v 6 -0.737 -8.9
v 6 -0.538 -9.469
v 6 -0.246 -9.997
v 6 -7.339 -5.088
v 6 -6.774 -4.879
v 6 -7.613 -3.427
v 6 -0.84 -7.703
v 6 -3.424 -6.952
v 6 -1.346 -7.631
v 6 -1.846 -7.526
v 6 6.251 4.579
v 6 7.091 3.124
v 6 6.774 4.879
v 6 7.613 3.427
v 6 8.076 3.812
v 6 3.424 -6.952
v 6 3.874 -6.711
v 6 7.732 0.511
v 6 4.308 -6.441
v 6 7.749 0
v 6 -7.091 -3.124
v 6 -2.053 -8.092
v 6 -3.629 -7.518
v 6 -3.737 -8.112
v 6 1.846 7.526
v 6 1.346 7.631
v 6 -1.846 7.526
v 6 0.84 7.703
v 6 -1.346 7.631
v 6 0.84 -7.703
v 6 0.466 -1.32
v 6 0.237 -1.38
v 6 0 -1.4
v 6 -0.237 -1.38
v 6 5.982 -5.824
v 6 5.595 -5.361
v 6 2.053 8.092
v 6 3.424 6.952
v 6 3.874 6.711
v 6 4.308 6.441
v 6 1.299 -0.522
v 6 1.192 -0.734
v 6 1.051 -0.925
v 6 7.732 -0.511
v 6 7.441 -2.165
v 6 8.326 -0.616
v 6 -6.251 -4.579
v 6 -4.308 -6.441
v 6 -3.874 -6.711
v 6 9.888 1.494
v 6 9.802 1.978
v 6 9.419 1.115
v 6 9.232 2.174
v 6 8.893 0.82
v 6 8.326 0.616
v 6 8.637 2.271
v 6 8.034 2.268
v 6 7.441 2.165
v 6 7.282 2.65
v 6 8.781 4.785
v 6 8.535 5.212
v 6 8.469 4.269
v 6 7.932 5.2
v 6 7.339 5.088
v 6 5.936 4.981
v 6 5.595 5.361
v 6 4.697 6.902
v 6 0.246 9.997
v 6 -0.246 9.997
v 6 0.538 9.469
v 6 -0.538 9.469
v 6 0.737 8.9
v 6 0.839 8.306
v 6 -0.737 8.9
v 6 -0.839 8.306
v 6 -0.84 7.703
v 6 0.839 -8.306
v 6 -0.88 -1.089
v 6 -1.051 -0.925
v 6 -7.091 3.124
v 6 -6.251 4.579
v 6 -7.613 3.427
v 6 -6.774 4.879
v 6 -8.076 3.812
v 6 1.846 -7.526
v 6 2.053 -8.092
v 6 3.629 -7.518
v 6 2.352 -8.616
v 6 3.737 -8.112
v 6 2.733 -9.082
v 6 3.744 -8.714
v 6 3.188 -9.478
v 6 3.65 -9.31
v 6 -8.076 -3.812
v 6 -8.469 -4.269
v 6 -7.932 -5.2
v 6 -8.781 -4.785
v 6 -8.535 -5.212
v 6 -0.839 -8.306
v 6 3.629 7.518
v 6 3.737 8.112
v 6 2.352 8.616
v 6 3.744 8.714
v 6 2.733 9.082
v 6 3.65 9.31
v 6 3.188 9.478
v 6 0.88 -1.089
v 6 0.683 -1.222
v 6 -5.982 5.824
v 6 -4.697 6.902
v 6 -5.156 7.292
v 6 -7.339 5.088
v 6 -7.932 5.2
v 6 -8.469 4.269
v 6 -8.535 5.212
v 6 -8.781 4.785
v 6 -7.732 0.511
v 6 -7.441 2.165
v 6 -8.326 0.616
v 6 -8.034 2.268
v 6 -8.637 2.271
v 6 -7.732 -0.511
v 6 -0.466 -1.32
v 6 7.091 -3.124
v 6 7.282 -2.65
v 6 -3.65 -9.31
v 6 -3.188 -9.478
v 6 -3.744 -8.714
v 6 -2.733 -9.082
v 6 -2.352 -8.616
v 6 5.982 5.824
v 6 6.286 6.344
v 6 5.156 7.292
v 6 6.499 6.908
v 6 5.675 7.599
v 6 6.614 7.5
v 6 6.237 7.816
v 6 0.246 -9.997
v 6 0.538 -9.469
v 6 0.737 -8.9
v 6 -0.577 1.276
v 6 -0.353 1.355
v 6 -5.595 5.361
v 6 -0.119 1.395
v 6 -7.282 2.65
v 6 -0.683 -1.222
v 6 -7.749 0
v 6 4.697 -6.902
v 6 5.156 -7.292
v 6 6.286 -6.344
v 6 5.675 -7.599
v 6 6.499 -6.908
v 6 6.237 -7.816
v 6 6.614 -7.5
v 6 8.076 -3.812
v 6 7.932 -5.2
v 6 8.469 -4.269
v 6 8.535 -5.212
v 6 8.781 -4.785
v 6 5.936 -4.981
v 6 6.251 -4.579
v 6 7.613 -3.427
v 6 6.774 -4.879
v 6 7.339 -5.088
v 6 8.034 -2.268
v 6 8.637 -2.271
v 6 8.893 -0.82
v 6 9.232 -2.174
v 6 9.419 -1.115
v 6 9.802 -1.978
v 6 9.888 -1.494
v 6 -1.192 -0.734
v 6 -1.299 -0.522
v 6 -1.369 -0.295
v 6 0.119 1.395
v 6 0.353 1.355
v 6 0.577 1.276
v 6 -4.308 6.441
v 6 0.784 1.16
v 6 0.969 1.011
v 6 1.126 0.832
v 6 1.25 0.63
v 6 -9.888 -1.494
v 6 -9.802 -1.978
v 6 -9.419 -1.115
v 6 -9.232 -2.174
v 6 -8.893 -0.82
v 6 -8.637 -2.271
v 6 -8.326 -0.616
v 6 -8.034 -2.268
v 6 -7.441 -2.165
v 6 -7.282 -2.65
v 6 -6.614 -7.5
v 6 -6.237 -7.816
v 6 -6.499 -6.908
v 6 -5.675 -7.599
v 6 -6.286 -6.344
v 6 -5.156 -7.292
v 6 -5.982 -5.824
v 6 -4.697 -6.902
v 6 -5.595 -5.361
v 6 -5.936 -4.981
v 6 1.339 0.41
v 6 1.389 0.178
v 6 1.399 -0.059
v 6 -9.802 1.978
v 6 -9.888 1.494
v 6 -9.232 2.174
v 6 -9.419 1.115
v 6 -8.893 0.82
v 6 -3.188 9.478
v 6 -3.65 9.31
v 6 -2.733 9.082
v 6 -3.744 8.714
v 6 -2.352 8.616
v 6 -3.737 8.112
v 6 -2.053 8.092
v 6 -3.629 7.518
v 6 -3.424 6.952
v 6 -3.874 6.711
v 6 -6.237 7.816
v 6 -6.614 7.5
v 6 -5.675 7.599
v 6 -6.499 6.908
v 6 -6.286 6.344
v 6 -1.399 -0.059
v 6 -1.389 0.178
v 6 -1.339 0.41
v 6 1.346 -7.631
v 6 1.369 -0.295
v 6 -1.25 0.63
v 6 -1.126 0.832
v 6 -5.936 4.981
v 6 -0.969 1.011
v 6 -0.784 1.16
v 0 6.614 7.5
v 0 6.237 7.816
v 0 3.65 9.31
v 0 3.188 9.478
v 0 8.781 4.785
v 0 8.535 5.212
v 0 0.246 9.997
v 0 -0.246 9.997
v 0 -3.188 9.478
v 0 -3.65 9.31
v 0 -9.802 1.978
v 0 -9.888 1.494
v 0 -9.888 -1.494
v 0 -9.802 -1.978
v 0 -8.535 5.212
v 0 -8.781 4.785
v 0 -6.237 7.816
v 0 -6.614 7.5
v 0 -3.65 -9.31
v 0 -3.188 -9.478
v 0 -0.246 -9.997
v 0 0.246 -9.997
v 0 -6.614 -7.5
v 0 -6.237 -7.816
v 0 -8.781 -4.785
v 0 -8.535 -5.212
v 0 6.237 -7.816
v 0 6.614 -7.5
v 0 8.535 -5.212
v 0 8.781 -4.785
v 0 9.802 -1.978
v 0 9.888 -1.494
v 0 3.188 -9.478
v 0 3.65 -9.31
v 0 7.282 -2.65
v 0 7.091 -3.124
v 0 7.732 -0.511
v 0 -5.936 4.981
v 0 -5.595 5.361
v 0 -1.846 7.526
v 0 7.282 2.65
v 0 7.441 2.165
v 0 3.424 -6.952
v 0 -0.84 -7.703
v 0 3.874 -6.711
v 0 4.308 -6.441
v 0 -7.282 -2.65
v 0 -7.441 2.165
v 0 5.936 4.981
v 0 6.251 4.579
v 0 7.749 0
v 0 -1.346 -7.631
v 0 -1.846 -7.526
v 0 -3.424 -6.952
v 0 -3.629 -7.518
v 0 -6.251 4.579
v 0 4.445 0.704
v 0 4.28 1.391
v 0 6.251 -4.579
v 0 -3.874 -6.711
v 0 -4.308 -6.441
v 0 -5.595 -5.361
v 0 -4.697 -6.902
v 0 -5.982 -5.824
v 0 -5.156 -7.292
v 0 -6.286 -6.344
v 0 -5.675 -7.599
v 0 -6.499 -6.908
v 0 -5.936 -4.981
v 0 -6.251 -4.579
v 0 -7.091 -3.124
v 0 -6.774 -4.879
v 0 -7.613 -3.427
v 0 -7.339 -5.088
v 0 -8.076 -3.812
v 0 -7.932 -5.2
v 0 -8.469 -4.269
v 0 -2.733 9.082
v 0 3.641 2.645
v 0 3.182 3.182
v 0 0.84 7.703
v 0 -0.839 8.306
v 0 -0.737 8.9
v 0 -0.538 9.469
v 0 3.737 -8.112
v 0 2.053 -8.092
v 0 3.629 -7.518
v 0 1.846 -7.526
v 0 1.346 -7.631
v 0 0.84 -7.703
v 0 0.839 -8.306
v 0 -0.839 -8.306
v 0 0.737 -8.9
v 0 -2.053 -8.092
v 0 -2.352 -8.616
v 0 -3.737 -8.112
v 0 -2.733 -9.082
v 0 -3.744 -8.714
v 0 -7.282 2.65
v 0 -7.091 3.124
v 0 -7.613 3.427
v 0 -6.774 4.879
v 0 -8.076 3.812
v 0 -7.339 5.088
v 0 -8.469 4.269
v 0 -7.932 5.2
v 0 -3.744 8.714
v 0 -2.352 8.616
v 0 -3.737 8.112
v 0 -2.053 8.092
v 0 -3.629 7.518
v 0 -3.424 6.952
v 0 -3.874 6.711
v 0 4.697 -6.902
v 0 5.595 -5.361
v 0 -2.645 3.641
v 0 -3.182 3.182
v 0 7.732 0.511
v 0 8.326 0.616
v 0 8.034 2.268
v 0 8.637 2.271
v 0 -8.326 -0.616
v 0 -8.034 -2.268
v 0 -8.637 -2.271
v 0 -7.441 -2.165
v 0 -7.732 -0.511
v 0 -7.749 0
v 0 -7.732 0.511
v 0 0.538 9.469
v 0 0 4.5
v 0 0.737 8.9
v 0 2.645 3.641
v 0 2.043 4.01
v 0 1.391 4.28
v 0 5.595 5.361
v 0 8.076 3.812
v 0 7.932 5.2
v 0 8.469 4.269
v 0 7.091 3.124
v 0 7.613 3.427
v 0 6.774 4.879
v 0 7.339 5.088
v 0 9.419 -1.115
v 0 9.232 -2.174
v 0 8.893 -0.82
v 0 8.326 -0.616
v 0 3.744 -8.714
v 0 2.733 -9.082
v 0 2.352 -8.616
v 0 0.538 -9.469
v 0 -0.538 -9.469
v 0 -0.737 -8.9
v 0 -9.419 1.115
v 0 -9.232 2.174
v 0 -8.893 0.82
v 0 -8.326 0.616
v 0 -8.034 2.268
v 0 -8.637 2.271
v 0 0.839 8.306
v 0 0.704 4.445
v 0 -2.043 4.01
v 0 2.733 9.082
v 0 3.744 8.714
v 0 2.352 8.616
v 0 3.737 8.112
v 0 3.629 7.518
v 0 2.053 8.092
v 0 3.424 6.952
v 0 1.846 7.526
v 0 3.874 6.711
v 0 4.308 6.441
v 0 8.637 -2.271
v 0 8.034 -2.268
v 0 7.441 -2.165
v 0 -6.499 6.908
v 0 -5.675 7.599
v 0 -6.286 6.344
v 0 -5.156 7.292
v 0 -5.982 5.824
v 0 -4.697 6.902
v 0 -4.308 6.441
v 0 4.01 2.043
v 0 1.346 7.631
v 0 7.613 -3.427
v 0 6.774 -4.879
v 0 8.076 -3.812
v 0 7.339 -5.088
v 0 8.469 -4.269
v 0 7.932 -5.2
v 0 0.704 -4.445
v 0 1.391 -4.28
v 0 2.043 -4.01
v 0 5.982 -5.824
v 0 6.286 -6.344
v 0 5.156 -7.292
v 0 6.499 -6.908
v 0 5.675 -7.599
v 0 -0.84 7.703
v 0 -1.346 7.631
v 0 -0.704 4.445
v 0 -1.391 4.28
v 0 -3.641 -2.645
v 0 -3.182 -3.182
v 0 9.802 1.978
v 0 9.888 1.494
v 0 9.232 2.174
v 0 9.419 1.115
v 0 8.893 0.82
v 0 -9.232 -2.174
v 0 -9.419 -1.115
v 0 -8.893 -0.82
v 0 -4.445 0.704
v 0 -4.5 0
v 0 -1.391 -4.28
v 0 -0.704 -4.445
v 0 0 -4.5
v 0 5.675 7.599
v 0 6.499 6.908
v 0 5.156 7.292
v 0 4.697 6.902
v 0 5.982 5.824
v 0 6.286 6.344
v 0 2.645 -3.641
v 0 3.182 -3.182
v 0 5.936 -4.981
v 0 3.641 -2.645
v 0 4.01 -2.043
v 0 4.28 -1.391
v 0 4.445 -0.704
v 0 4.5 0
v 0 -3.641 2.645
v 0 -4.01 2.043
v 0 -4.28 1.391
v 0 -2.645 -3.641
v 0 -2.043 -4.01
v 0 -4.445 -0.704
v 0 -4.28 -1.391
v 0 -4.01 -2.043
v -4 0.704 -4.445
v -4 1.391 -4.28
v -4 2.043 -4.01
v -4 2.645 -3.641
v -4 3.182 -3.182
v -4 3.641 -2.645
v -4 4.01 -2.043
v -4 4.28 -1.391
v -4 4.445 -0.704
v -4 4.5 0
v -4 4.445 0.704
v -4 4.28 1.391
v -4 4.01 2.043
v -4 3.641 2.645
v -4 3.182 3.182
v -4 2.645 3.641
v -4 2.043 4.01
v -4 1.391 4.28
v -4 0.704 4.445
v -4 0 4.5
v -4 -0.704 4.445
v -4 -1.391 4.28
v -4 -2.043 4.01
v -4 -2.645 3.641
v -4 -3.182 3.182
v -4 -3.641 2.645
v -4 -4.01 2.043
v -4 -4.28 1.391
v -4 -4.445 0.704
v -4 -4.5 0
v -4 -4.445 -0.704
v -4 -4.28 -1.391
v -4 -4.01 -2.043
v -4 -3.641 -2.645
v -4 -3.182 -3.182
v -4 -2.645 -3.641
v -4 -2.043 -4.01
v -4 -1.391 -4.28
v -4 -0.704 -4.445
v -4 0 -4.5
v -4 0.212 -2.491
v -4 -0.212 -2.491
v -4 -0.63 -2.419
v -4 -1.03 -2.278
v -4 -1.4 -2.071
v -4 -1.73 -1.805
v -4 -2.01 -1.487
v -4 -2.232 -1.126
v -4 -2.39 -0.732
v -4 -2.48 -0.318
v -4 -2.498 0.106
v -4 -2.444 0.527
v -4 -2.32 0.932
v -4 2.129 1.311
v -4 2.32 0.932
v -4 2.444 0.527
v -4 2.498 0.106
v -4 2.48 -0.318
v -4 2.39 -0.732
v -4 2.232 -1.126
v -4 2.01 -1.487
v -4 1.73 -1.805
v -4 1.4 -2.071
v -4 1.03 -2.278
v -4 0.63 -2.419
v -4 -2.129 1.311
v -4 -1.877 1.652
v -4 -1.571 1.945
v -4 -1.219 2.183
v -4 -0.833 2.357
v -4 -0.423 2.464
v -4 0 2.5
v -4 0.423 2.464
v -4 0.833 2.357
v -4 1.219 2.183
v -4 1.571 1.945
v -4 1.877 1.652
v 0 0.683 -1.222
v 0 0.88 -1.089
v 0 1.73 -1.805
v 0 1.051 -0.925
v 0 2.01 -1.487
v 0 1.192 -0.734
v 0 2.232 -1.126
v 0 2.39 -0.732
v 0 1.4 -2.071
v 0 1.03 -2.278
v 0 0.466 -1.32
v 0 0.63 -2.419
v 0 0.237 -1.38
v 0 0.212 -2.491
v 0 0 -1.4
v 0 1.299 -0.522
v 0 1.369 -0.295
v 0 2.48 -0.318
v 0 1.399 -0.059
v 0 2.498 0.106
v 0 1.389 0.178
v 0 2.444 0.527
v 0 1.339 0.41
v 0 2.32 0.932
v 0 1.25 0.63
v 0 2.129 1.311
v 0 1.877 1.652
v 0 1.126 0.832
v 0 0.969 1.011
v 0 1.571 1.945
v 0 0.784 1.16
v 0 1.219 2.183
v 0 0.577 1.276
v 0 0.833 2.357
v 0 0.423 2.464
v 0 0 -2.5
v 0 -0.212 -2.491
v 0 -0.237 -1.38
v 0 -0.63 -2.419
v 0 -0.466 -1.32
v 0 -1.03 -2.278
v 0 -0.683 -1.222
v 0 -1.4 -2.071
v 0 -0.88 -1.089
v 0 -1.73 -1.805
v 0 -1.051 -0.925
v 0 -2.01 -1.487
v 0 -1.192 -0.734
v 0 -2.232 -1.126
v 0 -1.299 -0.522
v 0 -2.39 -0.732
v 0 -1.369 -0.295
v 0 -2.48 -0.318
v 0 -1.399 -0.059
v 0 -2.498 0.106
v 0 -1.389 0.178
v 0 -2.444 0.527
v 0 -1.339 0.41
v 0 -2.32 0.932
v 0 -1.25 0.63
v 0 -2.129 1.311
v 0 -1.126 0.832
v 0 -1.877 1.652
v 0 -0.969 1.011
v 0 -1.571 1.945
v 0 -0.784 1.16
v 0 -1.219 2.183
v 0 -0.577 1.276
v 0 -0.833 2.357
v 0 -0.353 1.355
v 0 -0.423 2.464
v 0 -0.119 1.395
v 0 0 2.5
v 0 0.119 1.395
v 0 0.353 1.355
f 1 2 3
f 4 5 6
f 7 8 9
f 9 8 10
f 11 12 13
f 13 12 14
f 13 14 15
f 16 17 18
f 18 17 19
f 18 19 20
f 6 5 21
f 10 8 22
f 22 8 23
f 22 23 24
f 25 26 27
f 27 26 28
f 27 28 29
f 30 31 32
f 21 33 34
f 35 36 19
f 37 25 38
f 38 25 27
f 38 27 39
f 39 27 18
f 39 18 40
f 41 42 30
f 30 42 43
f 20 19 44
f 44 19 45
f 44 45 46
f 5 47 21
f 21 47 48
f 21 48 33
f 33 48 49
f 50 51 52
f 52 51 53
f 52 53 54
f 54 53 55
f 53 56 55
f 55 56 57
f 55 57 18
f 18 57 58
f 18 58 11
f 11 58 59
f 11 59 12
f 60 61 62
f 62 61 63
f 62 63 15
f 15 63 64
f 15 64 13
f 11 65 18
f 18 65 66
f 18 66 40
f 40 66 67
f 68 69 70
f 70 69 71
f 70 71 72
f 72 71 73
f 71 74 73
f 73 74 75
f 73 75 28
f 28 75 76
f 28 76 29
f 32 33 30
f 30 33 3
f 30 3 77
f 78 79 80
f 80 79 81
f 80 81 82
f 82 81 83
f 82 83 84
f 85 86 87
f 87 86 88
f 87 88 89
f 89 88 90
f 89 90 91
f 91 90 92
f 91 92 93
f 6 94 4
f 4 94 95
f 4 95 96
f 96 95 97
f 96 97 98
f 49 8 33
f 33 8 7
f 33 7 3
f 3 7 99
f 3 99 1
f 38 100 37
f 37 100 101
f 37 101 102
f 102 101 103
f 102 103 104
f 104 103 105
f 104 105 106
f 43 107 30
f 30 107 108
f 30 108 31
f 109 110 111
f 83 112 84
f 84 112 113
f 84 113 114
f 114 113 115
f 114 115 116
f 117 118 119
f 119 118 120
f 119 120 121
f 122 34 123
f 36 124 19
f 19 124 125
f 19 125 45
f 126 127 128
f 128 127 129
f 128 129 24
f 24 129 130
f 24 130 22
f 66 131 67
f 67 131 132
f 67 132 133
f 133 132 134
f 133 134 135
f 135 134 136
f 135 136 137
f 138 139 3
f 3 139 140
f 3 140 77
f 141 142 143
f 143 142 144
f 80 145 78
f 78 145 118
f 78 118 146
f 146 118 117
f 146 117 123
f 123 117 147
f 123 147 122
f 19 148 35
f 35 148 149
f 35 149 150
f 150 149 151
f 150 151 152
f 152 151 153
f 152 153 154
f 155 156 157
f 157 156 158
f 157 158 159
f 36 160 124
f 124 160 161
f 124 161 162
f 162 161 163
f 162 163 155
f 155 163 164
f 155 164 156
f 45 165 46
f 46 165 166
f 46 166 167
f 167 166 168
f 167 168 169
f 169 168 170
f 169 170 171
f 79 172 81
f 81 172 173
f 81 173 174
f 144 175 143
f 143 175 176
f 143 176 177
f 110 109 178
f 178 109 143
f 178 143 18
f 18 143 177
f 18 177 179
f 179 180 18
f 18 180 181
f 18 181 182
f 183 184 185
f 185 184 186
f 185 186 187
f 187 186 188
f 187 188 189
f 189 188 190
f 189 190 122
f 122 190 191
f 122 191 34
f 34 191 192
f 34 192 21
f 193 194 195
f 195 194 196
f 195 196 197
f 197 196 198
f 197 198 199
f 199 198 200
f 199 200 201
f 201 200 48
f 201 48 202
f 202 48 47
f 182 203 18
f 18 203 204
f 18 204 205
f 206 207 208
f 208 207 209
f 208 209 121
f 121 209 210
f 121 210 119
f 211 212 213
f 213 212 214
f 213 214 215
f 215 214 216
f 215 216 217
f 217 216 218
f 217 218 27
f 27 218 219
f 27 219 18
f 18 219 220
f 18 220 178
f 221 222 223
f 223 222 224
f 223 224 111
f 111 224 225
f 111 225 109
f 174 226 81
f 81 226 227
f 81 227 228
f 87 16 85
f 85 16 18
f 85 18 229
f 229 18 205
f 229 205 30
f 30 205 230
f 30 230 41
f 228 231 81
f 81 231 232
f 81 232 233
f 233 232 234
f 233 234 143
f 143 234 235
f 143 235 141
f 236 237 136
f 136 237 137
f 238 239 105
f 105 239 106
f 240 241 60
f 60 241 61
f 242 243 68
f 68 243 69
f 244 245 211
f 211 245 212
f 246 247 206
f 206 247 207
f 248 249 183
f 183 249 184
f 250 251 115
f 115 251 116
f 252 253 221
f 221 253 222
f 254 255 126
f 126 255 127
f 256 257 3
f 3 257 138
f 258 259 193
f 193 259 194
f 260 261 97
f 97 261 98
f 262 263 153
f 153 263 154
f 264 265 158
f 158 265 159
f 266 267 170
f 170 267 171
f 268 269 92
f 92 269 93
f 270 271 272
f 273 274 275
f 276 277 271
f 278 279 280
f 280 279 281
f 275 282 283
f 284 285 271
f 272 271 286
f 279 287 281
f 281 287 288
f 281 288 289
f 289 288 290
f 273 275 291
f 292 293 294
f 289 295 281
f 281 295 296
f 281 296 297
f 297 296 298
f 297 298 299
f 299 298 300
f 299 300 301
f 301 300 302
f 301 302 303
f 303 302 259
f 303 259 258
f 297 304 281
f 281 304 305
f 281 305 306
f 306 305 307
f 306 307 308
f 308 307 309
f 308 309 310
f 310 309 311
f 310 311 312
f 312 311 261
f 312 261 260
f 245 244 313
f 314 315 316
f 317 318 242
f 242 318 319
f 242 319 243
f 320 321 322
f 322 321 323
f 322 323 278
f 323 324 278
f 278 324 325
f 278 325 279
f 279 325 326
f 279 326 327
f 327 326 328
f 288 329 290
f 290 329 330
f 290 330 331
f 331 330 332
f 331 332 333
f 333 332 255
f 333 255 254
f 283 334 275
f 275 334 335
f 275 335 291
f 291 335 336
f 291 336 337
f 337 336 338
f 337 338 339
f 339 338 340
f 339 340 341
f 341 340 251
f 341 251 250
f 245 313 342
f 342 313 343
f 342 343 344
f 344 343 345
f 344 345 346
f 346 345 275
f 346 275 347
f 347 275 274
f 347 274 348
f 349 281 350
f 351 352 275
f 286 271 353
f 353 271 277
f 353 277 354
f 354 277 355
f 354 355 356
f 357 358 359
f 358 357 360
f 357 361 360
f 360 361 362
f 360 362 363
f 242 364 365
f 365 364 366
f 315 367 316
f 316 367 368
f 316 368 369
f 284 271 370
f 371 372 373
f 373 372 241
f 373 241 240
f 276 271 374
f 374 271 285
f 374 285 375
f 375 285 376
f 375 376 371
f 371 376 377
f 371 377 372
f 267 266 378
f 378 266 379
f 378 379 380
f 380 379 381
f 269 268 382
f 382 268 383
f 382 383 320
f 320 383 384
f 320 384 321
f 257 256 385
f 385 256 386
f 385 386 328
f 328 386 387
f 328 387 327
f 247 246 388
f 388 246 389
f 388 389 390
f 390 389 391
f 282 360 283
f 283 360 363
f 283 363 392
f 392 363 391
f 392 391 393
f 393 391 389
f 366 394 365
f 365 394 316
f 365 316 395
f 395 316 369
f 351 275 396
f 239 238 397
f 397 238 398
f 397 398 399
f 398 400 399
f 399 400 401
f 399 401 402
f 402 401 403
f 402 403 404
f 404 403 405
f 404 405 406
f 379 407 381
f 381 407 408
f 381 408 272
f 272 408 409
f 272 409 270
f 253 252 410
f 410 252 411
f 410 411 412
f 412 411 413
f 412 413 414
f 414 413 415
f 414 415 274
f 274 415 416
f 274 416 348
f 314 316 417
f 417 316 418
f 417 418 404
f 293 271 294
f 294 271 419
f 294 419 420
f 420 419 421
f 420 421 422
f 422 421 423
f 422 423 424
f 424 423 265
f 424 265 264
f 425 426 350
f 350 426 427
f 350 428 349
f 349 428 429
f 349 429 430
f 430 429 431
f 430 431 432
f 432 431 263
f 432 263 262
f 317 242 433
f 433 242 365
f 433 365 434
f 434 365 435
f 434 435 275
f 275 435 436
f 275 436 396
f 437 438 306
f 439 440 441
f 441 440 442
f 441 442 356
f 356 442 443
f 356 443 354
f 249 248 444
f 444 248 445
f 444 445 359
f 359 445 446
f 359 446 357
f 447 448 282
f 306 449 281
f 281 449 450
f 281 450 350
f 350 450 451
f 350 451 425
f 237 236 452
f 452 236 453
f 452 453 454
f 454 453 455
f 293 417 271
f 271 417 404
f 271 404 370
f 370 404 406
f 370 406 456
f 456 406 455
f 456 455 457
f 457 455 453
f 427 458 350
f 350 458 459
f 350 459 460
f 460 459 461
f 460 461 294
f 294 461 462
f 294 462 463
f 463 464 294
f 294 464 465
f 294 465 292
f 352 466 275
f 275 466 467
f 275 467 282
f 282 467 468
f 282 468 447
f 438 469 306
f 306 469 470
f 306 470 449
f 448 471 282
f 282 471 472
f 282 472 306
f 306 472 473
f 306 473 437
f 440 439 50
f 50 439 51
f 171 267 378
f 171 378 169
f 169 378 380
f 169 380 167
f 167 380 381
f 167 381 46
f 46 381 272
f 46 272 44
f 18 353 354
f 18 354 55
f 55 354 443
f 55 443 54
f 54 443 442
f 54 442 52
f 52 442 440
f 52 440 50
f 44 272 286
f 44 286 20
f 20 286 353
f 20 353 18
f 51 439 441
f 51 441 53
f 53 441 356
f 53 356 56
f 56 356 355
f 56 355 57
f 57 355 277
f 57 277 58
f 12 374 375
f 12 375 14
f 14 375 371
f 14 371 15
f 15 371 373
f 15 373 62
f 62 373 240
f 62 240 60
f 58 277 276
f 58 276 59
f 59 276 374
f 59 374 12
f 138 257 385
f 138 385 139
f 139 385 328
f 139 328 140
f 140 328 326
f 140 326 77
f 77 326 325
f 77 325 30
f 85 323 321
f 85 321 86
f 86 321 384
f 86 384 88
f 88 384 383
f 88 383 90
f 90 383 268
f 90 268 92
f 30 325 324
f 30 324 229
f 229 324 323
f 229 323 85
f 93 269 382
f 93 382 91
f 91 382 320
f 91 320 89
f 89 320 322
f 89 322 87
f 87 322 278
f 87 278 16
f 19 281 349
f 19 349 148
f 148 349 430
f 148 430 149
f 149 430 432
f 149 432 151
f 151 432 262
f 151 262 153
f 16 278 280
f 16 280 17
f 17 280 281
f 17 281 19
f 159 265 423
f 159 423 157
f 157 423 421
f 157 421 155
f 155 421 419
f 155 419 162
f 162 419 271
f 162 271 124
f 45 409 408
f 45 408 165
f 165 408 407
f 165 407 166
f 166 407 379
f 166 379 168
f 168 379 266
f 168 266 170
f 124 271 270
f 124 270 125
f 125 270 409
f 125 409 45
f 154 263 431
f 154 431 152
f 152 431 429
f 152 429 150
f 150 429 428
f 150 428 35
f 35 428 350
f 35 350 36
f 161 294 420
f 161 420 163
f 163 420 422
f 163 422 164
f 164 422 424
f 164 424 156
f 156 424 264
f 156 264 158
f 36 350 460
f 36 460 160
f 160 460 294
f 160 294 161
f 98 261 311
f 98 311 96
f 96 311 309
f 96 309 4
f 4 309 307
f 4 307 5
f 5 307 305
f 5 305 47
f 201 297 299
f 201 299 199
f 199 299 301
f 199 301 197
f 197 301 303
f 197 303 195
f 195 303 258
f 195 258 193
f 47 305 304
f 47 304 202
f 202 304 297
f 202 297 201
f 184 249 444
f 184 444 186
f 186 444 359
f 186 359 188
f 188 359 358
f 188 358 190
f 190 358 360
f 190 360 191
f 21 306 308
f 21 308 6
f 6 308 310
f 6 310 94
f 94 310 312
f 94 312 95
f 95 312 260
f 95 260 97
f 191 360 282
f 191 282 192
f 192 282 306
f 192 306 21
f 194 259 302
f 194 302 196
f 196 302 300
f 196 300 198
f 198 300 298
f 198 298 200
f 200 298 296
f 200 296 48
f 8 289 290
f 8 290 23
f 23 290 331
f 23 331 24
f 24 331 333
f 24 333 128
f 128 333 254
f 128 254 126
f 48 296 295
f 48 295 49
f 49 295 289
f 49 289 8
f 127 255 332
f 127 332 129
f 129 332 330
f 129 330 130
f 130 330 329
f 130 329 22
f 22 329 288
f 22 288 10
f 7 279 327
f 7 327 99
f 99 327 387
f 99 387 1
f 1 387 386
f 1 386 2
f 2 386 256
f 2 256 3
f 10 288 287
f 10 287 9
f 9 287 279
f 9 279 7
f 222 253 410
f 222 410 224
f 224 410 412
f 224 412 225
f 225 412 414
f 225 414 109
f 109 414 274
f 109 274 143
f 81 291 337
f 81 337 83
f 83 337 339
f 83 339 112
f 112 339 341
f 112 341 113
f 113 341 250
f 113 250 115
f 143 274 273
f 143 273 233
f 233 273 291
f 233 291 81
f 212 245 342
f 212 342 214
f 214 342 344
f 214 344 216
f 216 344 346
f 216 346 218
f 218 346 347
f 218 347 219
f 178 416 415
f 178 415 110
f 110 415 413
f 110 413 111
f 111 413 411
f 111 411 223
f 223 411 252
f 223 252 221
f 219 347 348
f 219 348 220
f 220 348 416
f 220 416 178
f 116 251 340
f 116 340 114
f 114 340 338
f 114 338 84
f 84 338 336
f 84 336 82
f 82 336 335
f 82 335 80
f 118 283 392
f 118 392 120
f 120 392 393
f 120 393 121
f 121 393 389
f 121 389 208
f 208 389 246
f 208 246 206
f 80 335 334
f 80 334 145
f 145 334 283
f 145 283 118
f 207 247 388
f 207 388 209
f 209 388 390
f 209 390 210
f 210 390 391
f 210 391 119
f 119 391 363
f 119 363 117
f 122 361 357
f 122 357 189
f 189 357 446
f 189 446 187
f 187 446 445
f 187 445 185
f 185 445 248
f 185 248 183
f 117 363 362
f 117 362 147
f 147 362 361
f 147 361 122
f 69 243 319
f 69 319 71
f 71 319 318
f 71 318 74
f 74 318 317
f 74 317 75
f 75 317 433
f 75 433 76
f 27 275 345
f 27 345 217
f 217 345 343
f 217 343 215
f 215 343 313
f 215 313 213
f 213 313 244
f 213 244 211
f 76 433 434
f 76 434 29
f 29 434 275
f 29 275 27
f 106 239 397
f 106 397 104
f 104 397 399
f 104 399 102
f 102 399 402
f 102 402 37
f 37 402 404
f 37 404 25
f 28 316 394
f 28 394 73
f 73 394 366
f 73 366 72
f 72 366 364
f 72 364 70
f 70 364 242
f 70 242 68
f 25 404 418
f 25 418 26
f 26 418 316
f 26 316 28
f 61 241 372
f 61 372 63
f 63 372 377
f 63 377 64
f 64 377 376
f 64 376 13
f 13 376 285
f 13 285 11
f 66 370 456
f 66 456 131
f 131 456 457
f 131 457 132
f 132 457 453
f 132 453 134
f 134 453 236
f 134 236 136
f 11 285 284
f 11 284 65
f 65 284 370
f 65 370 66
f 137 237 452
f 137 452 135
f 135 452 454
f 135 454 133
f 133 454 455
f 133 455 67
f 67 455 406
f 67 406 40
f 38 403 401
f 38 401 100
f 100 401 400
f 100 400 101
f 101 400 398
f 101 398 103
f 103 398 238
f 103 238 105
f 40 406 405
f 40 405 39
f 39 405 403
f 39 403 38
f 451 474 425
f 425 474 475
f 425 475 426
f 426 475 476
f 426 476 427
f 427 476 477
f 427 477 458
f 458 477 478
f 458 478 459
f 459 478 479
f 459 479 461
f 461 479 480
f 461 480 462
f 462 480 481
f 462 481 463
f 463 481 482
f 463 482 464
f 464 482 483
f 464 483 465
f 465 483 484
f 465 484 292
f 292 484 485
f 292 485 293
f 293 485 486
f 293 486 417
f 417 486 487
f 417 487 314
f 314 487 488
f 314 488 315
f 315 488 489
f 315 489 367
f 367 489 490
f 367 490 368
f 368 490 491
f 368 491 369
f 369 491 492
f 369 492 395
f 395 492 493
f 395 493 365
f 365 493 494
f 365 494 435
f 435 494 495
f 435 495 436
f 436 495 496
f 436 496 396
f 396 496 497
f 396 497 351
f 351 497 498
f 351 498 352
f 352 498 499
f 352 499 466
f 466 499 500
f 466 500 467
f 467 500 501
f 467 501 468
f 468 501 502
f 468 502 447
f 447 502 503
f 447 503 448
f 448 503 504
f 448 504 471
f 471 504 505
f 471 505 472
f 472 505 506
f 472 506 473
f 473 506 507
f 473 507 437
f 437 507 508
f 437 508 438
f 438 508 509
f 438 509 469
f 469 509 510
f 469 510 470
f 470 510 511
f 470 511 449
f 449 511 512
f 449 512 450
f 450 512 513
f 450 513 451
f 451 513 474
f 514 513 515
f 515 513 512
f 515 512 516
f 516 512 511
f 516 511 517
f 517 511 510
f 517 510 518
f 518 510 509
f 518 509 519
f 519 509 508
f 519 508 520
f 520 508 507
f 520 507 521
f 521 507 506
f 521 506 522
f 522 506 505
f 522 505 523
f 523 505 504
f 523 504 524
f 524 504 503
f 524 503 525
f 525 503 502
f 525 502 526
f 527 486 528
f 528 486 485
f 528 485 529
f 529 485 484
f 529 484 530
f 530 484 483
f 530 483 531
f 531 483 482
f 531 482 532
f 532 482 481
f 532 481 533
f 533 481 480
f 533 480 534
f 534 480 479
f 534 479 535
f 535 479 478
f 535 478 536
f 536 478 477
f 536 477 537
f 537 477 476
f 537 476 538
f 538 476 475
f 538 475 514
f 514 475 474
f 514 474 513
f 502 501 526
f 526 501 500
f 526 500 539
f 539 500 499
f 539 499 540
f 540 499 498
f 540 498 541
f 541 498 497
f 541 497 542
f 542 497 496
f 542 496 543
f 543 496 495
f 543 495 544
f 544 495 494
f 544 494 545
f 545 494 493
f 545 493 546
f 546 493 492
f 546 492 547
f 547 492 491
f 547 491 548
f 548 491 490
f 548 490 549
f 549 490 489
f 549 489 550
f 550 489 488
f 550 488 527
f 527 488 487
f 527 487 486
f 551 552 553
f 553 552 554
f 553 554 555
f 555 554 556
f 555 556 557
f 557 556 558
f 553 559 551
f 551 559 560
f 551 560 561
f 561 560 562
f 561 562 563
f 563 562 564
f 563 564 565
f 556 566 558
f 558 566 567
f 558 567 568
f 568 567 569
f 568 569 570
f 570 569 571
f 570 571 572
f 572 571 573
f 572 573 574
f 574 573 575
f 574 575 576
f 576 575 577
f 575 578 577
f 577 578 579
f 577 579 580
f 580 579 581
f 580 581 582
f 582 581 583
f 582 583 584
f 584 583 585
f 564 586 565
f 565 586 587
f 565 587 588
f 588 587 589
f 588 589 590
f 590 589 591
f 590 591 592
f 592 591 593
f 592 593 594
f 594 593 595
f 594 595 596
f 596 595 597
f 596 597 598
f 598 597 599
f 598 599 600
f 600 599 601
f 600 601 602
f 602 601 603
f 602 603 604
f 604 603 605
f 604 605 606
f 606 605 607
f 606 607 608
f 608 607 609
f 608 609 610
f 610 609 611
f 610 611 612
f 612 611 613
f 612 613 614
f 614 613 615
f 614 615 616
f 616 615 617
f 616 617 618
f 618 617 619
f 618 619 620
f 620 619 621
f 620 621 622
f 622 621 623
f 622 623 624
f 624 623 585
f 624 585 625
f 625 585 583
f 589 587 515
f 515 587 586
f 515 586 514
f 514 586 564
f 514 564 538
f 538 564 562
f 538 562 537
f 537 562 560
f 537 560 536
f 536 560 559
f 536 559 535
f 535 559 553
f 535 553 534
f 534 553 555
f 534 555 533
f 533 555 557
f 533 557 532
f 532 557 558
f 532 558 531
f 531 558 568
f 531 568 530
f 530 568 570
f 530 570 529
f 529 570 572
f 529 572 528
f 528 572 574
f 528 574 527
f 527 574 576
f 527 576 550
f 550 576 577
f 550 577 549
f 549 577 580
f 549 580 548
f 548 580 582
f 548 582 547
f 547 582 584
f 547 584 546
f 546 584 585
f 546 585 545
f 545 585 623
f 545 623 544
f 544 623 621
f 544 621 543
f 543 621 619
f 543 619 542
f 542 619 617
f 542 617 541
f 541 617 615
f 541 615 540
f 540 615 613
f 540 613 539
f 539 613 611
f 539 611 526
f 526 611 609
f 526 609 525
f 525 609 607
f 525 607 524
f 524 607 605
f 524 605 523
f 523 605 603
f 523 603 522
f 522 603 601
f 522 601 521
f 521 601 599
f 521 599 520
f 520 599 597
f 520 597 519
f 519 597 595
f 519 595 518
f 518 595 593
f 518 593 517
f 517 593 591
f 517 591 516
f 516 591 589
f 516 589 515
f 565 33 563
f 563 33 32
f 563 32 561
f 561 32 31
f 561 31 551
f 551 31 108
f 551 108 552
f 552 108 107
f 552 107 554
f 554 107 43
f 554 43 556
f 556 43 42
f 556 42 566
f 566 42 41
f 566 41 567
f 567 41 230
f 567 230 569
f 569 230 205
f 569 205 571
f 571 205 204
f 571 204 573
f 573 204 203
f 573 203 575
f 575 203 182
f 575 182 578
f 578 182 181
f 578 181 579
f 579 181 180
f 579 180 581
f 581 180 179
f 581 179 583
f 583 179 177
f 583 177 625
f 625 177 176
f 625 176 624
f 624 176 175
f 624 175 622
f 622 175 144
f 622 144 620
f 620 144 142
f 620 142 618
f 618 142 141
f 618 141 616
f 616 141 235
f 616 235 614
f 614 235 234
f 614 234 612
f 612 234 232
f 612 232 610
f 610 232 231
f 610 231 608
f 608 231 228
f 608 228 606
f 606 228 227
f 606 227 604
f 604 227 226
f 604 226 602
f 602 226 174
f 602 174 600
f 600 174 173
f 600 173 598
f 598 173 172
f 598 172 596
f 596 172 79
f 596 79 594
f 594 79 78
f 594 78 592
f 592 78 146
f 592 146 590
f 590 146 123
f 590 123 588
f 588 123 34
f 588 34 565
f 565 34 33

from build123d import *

# Parameters (mm, degrees)
BASPROSKE_W         = 6
BASPROSKE_H         = 10
TOOTHCUT_DEPTH      = 16.362291496
TEETHCUTS_COUNT     = 18
TEETHCUTS_ANGLE     = 340
BORSKE_R            = 0.5
BORE_DEPTH          = 50.0000508
SKETCH3_R           = 2.3
BOSS_EXTRUDE3_DEPTH = 6
SKETCH1_R           = 4.5
BOSS_EXTRUDE4_DEPTH = 4
SKETCH4_R           = 2.5
CUT_EXTRUDE1_DEPTH  = 4
SKETCH5_R           = 1.4
CUT_EXTRUDE2_DEPTH  = 6


with BuildPart() as part:
    # BasProSke → Base-Revolve (revolve)
    with BuildSketch(Plane(origin=(0, 0, 0), x_dir=(1, 0, 0), z_dir=(0, 1, 0)), mode=Mode.PRIVATE) as base_revolve_sk:
        with Locations((3, 5)):
            Rectangle(BASPROSKE_W, BASPROSKE_H)
    revolve(base_revolve_sk.sketch.rotate(Axis((-10, 0, 0), (1, 0, 0)), 180), axis=Axis((-10, 0, 0), (1, 0, 0)))

    # TooCutSke → ToothCut (cut, through all)
    with BuildSketch(Plane(origin=(0, 0, 0), x_dir=(0, 0, -1), z_dir=(1, 0, 0))):
        with BuildLine():
            ThreePointArc((0.510641536, 7.732156635), (0, 7.749), (-0.510641536, 7.732156635))
            ThreePointArc((-0.510641536, 7.732156635), (-0.82619259, 8.907320741), (-1.515208602, 9.910236529))
            ThreePointArc((-1.515208602, 9.910236529), (0, 10.0254), (1.515208602, 9.910236529))
            ThreePointArc((1.515208602, 9.910236529), (0.82619259, 8.907320741), (0.510641536, 7.732156635))
        make_face()
    toothcut = extrude(amount=TOOTHCUT_DEPTH, mode=Mode.SUBTRACT)

    # TeethCuts: ToothCut ×18 about axis
    teethcuts_axis = Axis((-10, 0, 0), (1, 0, 0))
    for i in range(1, TEETHCUTS_COUNT):
        add(toothcut.rotate(teethcuts_axis, i * TEETHCUTS_ANGLE / (TEETHCUTS_COUNT - 1)), mode=Mode.SUBTRACT)

    # BorSke → Bore (cut, symmetric)
    with BuildSketch(Plane(origin=(0, 0, 0), x_dir=(0, 0, -1), z_dir=(1, 0, 0))):
        with Locations(Location((0, 0, 0), (0, 0, 180))):
            Circle(BORSKE_R)
    extrude(amount=BORE_DEPTH, both=True, mode=Mode.SUBTRACT)

    # Sketch3 → Boss-Extrude3 (add)
    with BuildSketch(Plane(origin=(6, 0, 0), x_dir=(0, 0, -1), z_dir=(1, 0, 0))):
        Circle(SKETCH3_R)
    extrude(amount=-BOSS_EXTRUDE3_DEPTH)

    # Sketch1 → Boss-Extrude4 (add)
    with BuildSketch(Plane.ZY):
        with Locations(Location((0, 0, 0), (0, 0, 180))):
            Circle(SKETCH1_R)
    extrude(amount=BOSS_EXTRUDE4_DEPTH)

    # Sketch4 → Cut-Extrude1 (cut)
    with BuildSketch(Plane.ZY.offset(4)):
        Circle(SKETCH4_R)
    extrude(amount=-CUT_EXTRUDE1_DEPTH, mode=Mode.SUBTRACT)

    # Sketch5 → Cut-Extrude2 (cut)
    with BuildSketch(Plane(origin=(6, 0, 0), x_dir=(0, 0, -1), z_dir=(1, 0, 0))):
        Circle(SKETCH5_R)
    extrude(amount=-CUT_EXTRUDE2_DEPTH, mode=Mode.SUBTRACT)


solid = part.part
